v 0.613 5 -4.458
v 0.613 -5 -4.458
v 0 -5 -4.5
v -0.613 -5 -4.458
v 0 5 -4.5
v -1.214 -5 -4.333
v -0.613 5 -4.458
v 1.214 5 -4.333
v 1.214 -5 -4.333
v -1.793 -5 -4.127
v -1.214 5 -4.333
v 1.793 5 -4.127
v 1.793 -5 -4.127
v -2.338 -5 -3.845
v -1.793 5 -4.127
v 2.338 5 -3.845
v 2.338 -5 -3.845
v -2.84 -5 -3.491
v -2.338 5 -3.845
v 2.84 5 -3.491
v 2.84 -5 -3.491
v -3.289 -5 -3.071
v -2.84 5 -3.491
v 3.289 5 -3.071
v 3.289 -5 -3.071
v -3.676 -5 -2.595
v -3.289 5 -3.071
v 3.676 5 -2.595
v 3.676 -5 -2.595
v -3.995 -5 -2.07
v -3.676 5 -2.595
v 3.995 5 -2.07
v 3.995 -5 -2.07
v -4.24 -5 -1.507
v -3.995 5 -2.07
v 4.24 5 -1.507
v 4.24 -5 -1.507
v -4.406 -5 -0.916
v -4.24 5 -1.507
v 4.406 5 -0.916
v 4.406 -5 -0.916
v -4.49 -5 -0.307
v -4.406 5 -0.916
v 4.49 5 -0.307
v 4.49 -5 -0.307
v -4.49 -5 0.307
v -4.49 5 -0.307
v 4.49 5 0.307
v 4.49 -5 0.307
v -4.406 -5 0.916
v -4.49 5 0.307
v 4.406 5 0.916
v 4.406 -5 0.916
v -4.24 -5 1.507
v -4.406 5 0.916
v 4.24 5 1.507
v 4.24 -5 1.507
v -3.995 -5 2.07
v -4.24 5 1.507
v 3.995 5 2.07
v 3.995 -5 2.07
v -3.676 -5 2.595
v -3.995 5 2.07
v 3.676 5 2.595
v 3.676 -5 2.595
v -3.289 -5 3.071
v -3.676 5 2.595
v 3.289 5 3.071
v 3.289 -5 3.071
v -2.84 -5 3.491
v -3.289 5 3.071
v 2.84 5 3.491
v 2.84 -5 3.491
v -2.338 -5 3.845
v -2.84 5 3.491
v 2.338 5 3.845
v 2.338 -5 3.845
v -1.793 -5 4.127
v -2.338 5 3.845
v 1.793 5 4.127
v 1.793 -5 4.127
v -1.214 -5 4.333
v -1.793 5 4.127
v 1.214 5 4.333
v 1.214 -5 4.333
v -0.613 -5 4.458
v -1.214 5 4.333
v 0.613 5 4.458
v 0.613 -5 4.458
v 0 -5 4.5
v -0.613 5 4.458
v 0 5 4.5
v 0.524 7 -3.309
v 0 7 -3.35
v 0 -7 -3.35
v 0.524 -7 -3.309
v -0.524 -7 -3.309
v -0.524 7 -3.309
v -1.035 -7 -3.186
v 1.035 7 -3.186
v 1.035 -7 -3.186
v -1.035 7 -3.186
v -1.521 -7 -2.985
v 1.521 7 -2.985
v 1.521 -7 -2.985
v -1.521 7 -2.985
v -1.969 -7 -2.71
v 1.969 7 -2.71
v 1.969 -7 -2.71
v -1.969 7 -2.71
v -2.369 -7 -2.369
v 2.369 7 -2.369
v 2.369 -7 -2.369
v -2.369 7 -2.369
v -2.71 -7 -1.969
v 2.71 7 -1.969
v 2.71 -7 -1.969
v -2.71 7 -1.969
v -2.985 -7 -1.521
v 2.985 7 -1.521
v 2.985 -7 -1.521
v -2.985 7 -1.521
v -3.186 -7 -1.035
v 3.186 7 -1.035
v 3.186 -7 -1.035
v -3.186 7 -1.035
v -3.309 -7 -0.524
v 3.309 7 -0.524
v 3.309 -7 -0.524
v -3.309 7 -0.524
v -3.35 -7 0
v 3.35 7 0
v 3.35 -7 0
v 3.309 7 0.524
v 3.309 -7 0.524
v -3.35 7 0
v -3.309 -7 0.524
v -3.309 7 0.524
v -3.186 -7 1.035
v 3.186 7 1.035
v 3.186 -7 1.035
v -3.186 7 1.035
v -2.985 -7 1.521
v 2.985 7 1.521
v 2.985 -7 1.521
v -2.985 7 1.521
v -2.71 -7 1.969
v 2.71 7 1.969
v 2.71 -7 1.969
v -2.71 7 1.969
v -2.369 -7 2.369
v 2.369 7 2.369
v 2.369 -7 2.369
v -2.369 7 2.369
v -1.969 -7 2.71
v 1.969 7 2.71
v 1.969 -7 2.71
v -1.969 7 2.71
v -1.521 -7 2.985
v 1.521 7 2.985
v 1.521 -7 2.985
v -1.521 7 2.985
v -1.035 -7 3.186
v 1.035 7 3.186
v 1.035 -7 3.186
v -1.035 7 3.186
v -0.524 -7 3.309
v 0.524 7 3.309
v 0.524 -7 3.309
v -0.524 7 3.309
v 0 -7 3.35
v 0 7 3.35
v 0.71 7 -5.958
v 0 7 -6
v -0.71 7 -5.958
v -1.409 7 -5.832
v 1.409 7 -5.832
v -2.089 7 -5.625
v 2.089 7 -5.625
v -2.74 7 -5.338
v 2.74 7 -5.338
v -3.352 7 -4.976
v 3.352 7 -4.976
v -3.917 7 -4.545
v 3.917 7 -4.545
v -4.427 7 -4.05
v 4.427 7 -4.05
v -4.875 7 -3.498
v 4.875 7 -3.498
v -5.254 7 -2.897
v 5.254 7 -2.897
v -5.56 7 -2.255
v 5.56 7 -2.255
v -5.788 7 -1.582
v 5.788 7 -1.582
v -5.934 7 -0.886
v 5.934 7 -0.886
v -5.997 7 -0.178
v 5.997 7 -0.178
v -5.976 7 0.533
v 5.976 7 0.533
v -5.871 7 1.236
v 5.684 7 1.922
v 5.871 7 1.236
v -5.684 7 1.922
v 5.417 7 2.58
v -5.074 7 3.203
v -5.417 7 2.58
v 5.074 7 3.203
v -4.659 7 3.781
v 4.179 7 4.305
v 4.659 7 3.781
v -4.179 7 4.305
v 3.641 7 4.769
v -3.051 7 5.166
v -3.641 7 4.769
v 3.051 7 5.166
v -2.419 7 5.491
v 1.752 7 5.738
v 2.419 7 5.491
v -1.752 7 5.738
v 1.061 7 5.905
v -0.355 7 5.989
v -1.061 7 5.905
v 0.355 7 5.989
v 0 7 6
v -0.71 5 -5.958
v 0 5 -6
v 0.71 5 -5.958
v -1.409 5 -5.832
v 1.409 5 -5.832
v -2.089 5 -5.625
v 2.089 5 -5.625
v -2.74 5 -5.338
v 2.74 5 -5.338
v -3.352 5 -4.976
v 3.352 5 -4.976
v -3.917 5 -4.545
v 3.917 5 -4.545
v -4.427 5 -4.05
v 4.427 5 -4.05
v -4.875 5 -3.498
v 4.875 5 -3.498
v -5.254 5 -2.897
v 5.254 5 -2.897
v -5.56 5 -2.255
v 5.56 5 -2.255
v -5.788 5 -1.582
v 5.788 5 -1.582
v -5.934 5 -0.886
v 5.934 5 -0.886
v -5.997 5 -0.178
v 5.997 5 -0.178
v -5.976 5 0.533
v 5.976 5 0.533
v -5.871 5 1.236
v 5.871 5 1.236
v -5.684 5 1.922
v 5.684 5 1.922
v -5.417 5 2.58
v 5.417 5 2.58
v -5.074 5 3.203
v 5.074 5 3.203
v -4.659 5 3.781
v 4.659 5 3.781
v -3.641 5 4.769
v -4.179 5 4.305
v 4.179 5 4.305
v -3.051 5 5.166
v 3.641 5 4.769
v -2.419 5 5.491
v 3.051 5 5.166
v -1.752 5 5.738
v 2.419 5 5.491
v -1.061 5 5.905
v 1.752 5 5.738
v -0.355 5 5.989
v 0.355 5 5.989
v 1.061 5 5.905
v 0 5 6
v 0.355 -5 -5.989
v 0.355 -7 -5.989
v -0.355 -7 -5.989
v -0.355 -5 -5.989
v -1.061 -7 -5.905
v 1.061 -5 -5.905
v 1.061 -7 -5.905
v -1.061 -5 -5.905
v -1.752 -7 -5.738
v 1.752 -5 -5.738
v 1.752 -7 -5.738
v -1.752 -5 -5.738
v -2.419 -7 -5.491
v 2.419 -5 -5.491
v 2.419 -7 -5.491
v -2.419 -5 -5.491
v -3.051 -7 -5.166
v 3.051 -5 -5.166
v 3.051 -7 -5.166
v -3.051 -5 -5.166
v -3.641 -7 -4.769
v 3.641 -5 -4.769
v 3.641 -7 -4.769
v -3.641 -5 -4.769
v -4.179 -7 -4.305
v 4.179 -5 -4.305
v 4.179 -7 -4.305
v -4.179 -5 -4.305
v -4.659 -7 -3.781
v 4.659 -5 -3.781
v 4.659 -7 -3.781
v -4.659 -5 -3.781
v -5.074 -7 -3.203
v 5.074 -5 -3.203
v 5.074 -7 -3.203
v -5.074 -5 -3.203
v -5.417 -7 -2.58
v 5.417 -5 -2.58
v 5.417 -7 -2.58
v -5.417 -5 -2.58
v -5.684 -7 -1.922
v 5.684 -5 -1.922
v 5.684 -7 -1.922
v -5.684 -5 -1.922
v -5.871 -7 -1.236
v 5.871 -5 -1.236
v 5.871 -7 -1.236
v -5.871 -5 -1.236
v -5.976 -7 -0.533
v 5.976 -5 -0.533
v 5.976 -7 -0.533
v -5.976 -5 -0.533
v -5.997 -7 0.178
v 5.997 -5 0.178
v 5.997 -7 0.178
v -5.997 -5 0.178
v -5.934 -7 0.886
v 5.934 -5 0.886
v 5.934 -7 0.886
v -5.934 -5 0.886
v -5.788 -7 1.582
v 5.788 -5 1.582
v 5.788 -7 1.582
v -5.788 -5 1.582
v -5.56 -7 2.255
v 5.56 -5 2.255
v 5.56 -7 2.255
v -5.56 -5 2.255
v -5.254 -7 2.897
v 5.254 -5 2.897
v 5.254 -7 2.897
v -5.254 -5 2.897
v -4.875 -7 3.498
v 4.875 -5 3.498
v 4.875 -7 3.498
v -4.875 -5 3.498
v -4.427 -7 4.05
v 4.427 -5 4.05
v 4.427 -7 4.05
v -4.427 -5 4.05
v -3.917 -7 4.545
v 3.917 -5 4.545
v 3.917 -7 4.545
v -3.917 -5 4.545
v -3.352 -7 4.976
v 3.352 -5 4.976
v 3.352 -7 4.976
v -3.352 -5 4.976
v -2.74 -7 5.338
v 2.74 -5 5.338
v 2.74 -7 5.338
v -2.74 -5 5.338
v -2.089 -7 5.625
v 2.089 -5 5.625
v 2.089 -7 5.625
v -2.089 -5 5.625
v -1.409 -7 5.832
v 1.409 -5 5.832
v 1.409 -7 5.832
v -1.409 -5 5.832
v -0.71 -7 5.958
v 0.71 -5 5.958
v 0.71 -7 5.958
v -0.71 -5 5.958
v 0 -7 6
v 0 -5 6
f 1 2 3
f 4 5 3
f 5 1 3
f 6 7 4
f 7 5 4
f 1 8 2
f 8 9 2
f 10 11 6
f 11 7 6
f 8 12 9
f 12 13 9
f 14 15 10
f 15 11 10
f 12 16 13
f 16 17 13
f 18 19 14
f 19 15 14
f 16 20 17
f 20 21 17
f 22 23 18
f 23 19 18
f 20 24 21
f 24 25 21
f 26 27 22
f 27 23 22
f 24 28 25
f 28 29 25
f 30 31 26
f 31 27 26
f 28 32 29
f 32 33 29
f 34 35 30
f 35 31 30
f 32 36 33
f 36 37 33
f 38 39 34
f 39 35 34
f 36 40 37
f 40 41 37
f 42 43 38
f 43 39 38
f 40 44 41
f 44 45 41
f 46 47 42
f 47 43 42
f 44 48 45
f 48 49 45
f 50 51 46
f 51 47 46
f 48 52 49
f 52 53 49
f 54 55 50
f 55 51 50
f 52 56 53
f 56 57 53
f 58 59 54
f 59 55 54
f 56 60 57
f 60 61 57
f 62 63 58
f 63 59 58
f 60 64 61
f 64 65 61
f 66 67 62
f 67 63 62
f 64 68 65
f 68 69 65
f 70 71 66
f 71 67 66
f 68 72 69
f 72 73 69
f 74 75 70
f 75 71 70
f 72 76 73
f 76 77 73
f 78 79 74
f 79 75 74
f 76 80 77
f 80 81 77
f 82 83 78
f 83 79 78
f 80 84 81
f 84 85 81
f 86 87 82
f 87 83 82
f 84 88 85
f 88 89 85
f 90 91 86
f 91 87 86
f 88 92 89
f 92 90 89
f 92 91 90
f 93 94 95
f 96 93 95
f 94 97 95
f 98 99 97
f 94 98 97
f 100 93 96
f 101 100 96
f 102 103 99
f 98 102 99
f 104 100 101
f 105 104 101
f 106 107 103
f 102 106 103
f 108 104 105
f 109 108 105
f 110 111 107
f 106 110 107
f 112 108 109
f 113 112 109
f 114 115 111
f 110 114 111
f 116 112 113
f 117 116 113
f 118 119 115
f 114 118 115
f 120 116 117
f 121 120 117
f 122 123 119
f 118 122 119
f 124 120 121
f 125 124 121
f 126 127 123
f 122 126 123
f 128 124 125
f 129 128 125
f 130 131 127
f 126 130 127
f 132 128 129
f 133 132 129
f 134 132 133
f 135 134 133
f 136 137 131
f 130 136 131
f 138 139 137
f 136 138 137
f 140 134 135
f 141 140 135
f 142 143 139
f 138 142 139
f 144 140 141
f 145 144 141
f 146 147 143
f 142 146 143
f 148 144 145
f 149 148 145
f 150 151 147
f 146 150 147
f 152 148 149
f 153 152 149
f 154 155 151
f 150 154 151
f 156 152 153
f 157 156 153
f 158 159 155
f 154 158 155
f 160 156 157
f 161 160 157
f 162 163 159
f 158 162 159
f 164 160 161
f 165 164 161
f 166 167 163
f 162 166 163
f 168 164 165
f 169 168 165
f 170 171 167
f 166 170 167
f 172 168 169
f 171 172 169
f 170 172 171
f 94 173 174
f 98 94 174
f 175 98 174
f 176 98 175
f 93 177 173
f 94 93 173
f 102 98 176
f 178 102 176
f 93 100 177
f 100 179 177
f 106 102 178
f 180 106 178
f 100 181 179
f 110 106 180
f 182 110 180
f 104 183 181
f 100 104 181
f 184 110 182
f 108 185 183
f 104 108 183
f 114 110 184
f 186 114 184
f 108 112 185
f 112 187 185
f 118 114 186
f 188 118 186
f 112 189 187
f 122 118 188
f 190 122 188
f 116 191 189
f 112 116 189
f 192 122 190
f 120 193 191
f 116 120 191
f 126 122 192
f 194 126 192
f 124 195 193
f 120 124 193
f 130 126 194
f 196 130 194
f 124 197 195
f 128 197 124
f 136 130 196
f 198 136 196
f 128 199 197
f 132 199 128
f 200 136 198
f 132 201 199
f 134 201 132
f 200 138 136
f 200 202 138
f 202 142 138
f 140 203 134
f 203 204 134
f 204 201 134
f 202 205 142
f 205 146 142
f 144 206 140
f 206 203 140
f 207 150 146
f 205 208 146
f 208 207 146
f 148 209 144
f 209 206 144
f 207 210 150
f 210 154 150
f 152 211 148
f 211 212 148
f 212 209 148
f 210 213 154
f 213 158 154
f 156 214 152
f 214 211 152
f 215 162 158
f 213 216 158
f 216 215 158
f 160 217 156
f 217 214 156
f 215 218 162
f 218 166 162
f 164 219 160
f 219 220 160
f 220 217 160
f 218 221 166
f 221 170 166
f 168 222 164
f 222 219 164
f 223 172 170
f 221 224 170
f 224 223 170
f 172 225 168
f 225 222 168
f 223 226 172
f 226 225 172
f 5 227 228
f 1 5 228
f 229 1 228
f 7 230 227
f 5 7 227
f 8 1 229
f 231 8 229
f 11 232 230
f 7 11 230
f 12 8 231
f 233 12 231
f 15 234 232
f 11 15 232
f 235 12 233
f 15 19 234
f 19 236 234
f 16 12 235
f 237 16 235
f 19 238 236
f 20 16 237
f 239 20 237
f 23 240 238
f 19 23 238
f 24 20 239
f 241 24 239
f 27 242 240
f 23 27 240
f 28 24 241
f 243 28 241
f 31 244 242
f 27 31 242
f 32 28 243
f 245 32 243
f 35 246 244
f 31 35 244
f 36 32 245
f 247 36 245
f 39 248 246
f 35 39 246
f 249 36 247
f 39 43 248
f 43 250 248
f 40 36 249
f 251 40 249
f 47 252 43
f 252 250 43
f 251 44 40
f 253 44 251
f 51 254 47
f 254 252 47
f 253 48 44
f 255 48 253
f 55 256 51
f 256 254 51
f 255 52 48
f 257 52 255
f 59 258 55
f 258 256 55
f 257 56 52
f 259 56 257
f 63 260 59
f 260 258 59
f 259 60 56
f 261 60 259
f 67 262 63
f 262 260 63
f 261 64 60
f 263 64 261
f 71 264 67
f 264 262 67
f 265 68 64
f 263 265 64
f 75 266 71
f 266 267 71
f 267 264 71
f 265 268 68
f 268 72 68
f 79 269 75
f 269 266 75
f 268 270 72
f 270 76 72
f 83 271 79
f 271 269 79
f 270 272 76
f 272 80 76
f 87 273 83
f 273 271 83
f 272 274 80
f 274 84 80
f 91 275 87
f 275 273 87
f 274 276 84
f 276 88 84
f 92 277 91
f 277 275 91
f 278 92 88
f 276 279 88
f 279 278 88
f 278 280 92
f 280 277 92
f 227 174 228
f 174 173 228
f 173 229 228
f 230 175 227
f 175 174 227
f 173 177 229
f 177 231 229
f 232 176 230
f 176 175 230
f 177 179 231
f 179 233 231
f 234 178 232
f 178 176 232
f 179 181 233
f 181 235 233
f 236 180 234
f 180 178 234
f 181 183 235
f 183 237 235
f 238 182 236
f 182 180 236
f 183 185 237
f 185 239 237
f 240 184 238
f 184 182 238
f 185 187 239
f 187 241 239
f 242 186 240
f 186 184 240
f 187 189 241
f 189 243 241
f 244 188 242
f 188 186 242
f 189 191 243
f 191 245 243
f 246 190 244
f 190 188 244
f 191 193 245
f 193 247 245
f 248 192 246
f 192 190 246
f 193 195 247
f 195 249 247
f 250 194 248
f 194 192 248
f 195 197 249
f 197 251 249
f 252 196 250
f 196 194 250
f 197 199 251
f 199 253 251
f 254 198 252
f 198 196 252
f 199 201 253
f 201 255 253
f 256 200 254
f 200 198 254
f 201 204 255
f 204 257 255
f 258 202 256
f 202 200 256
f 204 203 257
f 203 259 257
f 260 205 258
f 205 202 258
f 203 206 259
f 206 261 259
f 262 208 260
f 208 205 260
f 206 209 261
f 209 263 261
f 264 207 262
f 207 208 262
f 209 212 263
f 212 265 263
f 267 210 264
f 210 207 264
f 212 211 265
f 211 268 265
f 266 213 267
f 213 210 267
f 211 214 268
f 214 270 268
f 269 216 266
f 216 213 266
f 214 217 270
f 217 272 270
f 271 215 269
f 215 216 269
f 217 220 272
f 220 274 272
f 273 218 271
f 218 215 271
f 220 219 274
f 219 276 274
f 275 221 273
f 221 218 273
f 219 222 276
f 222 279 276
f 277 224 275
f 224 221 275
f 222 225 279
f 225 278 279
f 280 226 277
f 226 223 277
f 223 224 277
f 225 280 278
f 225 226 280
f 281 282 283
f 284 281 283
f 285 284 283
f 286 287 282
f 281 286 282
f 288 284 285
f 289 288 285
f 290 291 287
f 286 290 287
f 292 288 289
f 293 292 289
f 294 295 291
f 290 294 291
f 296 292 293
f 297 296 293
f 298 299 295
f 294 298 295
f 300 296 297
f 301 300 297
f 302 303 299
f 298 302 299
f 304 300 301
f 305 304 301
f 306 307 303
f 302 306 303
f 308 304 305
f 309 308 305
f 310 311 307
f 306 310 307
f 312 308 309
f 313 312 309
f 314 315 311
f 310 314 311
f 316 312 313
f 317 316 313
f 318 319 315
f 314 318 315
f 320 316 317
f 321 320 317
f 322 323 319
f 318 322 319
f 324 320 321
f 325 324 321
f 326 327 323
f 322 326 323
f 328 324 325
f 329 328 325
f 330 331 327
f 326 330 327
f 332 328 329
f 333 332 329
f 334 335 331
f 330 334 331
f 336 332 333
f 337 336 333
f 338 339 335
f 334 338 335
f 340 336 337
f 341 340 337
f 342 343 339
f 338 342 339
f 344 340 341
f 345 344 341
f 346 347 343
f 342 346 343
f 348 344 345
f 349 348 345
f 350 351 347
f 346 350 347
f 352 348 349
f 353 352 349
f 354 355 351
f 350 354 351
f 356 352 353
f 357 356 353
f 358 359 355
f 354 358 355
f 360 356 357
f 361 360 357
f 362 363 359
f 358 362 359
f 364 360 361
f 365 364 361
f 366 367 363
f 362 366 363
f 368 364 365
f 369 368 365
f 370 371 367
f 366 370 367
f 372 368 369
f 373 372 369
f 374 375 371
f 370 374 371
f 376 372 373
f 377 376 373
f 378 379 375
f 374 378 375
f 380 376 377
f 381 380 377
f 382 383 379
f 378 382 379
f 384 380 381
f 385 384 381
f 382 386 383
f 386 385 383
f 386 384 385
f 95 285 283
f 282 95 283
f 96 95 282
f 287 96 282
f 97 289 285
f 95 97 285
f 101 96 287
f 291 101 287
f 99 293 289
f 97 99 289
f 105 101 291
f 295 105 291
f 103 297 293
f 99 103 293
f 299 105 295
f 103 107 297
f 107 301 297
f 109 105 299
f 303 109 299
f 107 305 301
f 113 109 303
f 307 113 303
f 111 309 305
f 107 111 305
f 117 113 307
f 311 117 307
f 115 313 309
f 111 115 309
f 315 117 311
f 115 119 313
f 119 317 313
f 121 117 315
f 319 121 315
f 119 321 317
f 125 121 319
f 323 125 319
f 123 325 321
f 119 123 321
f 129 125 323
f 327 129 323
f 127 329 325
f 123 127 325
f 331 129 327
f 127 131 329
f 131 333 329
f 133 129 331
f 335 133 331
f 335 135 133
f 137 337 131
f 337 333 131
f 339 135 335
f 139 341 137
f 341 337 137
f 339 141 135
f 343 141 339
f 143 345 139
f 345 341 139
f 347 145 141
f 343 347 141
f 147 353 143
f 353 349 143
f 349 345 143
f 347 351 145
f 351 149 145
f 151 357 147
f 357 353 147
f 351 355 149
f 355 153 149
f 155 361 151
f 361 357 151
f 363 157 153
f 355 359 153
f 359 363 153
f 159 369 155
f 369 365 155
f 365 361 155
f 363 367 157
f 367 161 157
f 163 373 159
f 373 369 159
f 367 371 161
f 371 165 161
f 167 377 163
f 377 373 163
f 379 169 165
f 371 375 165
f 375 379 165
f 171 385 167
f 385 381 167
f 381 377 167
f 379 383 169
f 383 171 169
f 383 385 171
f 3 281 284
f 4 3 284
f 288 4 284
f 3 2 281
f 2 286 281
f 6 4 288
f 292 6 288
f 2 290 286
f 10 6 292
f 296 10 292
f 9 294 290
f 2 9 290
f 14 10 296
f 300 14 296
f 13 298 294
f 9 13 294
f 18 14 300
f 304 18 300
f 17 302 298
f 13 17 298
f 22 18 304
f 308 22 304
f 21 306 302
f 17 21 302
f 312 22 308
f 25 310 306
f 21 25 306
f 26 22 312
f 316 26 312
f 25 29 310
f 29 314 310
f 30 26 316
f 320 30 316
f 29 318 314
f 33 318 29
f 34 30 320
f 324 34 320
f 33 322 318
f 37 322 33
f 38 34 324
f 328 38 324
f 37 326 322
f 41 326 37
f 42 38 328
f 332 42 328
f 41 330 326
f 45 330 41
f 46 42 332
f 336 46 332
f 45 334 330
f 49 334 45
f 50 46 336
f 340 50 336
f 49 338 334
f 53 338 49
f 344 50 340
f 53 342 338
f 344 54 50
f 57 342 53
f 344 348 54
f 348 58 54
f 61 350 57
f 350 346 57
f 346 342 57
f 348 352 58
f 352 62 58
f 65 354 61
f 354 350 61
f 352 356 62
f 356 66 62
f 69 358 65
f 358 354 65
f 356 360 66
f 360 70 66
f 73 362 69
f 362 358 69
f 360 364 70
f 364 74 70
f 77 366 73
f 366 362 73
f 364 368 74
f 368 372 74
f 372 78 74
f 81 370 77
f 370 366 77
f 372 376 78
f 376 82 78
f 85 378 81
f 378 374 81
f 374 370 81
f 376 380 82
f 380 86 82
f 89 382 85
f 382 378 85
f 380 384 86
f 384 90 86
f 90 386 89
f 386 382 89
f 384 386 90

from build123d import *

# Parameters (mm, degrees)
SKETCH1_R           = 4.5
SKETCH1_R_2         = 3.35
BOSS_EXTRUDE1_DEPTH = 5
SKETCH2_R           = 6
SKETCH2_R_2         = 3.35
BOSS_EXTRUDE2_DEPTH = 2


with BuildPart() as part:
    # Sketch1 → Boss-Extrude1 (new, symmetric)
    with BuildSketch(Plane(origin=(0, 0, 0), x_dir=(1, 0, 0), z_dir=(0, 1, 0))):
        with Locations(Location((0, 0, 0), (0, 0, 270))):
            Circle(SKETCH1_R)
        with Locations(Location((0, 0, 0), (0, 0, 270))):
            Circle(SKETCH1_R_2, mode=Mode.SUBTRACT)
    extrude(amount=BOSS_EXTRUDE1_DEPTH, both=True)

    # Sketch2 → Boss-Extrude2 (add)
    with BuildSketch(Plane(origin=(0, 5, 0), x_dir=(1, 0, 0), z_dir=(0, 1, 0))):
        with Locations(Location((0, 0, 0), (0, 0, 270))):
            Circle(SKETCH2_R)
        with Locations(Location((0, 0, 0), (0, 0, 270))):
            Circle(SKETCH2_R_2, mode=Mode.SUBTRACT)
    boss_extrude2 = extrude(amount=BOSS_EXTRUDE2_DEPTH)

    # Mirror1: Boss-Extrude2 across plane
    add(boss_extrude2.mirror(Plane.ZX))


solid = part.part
